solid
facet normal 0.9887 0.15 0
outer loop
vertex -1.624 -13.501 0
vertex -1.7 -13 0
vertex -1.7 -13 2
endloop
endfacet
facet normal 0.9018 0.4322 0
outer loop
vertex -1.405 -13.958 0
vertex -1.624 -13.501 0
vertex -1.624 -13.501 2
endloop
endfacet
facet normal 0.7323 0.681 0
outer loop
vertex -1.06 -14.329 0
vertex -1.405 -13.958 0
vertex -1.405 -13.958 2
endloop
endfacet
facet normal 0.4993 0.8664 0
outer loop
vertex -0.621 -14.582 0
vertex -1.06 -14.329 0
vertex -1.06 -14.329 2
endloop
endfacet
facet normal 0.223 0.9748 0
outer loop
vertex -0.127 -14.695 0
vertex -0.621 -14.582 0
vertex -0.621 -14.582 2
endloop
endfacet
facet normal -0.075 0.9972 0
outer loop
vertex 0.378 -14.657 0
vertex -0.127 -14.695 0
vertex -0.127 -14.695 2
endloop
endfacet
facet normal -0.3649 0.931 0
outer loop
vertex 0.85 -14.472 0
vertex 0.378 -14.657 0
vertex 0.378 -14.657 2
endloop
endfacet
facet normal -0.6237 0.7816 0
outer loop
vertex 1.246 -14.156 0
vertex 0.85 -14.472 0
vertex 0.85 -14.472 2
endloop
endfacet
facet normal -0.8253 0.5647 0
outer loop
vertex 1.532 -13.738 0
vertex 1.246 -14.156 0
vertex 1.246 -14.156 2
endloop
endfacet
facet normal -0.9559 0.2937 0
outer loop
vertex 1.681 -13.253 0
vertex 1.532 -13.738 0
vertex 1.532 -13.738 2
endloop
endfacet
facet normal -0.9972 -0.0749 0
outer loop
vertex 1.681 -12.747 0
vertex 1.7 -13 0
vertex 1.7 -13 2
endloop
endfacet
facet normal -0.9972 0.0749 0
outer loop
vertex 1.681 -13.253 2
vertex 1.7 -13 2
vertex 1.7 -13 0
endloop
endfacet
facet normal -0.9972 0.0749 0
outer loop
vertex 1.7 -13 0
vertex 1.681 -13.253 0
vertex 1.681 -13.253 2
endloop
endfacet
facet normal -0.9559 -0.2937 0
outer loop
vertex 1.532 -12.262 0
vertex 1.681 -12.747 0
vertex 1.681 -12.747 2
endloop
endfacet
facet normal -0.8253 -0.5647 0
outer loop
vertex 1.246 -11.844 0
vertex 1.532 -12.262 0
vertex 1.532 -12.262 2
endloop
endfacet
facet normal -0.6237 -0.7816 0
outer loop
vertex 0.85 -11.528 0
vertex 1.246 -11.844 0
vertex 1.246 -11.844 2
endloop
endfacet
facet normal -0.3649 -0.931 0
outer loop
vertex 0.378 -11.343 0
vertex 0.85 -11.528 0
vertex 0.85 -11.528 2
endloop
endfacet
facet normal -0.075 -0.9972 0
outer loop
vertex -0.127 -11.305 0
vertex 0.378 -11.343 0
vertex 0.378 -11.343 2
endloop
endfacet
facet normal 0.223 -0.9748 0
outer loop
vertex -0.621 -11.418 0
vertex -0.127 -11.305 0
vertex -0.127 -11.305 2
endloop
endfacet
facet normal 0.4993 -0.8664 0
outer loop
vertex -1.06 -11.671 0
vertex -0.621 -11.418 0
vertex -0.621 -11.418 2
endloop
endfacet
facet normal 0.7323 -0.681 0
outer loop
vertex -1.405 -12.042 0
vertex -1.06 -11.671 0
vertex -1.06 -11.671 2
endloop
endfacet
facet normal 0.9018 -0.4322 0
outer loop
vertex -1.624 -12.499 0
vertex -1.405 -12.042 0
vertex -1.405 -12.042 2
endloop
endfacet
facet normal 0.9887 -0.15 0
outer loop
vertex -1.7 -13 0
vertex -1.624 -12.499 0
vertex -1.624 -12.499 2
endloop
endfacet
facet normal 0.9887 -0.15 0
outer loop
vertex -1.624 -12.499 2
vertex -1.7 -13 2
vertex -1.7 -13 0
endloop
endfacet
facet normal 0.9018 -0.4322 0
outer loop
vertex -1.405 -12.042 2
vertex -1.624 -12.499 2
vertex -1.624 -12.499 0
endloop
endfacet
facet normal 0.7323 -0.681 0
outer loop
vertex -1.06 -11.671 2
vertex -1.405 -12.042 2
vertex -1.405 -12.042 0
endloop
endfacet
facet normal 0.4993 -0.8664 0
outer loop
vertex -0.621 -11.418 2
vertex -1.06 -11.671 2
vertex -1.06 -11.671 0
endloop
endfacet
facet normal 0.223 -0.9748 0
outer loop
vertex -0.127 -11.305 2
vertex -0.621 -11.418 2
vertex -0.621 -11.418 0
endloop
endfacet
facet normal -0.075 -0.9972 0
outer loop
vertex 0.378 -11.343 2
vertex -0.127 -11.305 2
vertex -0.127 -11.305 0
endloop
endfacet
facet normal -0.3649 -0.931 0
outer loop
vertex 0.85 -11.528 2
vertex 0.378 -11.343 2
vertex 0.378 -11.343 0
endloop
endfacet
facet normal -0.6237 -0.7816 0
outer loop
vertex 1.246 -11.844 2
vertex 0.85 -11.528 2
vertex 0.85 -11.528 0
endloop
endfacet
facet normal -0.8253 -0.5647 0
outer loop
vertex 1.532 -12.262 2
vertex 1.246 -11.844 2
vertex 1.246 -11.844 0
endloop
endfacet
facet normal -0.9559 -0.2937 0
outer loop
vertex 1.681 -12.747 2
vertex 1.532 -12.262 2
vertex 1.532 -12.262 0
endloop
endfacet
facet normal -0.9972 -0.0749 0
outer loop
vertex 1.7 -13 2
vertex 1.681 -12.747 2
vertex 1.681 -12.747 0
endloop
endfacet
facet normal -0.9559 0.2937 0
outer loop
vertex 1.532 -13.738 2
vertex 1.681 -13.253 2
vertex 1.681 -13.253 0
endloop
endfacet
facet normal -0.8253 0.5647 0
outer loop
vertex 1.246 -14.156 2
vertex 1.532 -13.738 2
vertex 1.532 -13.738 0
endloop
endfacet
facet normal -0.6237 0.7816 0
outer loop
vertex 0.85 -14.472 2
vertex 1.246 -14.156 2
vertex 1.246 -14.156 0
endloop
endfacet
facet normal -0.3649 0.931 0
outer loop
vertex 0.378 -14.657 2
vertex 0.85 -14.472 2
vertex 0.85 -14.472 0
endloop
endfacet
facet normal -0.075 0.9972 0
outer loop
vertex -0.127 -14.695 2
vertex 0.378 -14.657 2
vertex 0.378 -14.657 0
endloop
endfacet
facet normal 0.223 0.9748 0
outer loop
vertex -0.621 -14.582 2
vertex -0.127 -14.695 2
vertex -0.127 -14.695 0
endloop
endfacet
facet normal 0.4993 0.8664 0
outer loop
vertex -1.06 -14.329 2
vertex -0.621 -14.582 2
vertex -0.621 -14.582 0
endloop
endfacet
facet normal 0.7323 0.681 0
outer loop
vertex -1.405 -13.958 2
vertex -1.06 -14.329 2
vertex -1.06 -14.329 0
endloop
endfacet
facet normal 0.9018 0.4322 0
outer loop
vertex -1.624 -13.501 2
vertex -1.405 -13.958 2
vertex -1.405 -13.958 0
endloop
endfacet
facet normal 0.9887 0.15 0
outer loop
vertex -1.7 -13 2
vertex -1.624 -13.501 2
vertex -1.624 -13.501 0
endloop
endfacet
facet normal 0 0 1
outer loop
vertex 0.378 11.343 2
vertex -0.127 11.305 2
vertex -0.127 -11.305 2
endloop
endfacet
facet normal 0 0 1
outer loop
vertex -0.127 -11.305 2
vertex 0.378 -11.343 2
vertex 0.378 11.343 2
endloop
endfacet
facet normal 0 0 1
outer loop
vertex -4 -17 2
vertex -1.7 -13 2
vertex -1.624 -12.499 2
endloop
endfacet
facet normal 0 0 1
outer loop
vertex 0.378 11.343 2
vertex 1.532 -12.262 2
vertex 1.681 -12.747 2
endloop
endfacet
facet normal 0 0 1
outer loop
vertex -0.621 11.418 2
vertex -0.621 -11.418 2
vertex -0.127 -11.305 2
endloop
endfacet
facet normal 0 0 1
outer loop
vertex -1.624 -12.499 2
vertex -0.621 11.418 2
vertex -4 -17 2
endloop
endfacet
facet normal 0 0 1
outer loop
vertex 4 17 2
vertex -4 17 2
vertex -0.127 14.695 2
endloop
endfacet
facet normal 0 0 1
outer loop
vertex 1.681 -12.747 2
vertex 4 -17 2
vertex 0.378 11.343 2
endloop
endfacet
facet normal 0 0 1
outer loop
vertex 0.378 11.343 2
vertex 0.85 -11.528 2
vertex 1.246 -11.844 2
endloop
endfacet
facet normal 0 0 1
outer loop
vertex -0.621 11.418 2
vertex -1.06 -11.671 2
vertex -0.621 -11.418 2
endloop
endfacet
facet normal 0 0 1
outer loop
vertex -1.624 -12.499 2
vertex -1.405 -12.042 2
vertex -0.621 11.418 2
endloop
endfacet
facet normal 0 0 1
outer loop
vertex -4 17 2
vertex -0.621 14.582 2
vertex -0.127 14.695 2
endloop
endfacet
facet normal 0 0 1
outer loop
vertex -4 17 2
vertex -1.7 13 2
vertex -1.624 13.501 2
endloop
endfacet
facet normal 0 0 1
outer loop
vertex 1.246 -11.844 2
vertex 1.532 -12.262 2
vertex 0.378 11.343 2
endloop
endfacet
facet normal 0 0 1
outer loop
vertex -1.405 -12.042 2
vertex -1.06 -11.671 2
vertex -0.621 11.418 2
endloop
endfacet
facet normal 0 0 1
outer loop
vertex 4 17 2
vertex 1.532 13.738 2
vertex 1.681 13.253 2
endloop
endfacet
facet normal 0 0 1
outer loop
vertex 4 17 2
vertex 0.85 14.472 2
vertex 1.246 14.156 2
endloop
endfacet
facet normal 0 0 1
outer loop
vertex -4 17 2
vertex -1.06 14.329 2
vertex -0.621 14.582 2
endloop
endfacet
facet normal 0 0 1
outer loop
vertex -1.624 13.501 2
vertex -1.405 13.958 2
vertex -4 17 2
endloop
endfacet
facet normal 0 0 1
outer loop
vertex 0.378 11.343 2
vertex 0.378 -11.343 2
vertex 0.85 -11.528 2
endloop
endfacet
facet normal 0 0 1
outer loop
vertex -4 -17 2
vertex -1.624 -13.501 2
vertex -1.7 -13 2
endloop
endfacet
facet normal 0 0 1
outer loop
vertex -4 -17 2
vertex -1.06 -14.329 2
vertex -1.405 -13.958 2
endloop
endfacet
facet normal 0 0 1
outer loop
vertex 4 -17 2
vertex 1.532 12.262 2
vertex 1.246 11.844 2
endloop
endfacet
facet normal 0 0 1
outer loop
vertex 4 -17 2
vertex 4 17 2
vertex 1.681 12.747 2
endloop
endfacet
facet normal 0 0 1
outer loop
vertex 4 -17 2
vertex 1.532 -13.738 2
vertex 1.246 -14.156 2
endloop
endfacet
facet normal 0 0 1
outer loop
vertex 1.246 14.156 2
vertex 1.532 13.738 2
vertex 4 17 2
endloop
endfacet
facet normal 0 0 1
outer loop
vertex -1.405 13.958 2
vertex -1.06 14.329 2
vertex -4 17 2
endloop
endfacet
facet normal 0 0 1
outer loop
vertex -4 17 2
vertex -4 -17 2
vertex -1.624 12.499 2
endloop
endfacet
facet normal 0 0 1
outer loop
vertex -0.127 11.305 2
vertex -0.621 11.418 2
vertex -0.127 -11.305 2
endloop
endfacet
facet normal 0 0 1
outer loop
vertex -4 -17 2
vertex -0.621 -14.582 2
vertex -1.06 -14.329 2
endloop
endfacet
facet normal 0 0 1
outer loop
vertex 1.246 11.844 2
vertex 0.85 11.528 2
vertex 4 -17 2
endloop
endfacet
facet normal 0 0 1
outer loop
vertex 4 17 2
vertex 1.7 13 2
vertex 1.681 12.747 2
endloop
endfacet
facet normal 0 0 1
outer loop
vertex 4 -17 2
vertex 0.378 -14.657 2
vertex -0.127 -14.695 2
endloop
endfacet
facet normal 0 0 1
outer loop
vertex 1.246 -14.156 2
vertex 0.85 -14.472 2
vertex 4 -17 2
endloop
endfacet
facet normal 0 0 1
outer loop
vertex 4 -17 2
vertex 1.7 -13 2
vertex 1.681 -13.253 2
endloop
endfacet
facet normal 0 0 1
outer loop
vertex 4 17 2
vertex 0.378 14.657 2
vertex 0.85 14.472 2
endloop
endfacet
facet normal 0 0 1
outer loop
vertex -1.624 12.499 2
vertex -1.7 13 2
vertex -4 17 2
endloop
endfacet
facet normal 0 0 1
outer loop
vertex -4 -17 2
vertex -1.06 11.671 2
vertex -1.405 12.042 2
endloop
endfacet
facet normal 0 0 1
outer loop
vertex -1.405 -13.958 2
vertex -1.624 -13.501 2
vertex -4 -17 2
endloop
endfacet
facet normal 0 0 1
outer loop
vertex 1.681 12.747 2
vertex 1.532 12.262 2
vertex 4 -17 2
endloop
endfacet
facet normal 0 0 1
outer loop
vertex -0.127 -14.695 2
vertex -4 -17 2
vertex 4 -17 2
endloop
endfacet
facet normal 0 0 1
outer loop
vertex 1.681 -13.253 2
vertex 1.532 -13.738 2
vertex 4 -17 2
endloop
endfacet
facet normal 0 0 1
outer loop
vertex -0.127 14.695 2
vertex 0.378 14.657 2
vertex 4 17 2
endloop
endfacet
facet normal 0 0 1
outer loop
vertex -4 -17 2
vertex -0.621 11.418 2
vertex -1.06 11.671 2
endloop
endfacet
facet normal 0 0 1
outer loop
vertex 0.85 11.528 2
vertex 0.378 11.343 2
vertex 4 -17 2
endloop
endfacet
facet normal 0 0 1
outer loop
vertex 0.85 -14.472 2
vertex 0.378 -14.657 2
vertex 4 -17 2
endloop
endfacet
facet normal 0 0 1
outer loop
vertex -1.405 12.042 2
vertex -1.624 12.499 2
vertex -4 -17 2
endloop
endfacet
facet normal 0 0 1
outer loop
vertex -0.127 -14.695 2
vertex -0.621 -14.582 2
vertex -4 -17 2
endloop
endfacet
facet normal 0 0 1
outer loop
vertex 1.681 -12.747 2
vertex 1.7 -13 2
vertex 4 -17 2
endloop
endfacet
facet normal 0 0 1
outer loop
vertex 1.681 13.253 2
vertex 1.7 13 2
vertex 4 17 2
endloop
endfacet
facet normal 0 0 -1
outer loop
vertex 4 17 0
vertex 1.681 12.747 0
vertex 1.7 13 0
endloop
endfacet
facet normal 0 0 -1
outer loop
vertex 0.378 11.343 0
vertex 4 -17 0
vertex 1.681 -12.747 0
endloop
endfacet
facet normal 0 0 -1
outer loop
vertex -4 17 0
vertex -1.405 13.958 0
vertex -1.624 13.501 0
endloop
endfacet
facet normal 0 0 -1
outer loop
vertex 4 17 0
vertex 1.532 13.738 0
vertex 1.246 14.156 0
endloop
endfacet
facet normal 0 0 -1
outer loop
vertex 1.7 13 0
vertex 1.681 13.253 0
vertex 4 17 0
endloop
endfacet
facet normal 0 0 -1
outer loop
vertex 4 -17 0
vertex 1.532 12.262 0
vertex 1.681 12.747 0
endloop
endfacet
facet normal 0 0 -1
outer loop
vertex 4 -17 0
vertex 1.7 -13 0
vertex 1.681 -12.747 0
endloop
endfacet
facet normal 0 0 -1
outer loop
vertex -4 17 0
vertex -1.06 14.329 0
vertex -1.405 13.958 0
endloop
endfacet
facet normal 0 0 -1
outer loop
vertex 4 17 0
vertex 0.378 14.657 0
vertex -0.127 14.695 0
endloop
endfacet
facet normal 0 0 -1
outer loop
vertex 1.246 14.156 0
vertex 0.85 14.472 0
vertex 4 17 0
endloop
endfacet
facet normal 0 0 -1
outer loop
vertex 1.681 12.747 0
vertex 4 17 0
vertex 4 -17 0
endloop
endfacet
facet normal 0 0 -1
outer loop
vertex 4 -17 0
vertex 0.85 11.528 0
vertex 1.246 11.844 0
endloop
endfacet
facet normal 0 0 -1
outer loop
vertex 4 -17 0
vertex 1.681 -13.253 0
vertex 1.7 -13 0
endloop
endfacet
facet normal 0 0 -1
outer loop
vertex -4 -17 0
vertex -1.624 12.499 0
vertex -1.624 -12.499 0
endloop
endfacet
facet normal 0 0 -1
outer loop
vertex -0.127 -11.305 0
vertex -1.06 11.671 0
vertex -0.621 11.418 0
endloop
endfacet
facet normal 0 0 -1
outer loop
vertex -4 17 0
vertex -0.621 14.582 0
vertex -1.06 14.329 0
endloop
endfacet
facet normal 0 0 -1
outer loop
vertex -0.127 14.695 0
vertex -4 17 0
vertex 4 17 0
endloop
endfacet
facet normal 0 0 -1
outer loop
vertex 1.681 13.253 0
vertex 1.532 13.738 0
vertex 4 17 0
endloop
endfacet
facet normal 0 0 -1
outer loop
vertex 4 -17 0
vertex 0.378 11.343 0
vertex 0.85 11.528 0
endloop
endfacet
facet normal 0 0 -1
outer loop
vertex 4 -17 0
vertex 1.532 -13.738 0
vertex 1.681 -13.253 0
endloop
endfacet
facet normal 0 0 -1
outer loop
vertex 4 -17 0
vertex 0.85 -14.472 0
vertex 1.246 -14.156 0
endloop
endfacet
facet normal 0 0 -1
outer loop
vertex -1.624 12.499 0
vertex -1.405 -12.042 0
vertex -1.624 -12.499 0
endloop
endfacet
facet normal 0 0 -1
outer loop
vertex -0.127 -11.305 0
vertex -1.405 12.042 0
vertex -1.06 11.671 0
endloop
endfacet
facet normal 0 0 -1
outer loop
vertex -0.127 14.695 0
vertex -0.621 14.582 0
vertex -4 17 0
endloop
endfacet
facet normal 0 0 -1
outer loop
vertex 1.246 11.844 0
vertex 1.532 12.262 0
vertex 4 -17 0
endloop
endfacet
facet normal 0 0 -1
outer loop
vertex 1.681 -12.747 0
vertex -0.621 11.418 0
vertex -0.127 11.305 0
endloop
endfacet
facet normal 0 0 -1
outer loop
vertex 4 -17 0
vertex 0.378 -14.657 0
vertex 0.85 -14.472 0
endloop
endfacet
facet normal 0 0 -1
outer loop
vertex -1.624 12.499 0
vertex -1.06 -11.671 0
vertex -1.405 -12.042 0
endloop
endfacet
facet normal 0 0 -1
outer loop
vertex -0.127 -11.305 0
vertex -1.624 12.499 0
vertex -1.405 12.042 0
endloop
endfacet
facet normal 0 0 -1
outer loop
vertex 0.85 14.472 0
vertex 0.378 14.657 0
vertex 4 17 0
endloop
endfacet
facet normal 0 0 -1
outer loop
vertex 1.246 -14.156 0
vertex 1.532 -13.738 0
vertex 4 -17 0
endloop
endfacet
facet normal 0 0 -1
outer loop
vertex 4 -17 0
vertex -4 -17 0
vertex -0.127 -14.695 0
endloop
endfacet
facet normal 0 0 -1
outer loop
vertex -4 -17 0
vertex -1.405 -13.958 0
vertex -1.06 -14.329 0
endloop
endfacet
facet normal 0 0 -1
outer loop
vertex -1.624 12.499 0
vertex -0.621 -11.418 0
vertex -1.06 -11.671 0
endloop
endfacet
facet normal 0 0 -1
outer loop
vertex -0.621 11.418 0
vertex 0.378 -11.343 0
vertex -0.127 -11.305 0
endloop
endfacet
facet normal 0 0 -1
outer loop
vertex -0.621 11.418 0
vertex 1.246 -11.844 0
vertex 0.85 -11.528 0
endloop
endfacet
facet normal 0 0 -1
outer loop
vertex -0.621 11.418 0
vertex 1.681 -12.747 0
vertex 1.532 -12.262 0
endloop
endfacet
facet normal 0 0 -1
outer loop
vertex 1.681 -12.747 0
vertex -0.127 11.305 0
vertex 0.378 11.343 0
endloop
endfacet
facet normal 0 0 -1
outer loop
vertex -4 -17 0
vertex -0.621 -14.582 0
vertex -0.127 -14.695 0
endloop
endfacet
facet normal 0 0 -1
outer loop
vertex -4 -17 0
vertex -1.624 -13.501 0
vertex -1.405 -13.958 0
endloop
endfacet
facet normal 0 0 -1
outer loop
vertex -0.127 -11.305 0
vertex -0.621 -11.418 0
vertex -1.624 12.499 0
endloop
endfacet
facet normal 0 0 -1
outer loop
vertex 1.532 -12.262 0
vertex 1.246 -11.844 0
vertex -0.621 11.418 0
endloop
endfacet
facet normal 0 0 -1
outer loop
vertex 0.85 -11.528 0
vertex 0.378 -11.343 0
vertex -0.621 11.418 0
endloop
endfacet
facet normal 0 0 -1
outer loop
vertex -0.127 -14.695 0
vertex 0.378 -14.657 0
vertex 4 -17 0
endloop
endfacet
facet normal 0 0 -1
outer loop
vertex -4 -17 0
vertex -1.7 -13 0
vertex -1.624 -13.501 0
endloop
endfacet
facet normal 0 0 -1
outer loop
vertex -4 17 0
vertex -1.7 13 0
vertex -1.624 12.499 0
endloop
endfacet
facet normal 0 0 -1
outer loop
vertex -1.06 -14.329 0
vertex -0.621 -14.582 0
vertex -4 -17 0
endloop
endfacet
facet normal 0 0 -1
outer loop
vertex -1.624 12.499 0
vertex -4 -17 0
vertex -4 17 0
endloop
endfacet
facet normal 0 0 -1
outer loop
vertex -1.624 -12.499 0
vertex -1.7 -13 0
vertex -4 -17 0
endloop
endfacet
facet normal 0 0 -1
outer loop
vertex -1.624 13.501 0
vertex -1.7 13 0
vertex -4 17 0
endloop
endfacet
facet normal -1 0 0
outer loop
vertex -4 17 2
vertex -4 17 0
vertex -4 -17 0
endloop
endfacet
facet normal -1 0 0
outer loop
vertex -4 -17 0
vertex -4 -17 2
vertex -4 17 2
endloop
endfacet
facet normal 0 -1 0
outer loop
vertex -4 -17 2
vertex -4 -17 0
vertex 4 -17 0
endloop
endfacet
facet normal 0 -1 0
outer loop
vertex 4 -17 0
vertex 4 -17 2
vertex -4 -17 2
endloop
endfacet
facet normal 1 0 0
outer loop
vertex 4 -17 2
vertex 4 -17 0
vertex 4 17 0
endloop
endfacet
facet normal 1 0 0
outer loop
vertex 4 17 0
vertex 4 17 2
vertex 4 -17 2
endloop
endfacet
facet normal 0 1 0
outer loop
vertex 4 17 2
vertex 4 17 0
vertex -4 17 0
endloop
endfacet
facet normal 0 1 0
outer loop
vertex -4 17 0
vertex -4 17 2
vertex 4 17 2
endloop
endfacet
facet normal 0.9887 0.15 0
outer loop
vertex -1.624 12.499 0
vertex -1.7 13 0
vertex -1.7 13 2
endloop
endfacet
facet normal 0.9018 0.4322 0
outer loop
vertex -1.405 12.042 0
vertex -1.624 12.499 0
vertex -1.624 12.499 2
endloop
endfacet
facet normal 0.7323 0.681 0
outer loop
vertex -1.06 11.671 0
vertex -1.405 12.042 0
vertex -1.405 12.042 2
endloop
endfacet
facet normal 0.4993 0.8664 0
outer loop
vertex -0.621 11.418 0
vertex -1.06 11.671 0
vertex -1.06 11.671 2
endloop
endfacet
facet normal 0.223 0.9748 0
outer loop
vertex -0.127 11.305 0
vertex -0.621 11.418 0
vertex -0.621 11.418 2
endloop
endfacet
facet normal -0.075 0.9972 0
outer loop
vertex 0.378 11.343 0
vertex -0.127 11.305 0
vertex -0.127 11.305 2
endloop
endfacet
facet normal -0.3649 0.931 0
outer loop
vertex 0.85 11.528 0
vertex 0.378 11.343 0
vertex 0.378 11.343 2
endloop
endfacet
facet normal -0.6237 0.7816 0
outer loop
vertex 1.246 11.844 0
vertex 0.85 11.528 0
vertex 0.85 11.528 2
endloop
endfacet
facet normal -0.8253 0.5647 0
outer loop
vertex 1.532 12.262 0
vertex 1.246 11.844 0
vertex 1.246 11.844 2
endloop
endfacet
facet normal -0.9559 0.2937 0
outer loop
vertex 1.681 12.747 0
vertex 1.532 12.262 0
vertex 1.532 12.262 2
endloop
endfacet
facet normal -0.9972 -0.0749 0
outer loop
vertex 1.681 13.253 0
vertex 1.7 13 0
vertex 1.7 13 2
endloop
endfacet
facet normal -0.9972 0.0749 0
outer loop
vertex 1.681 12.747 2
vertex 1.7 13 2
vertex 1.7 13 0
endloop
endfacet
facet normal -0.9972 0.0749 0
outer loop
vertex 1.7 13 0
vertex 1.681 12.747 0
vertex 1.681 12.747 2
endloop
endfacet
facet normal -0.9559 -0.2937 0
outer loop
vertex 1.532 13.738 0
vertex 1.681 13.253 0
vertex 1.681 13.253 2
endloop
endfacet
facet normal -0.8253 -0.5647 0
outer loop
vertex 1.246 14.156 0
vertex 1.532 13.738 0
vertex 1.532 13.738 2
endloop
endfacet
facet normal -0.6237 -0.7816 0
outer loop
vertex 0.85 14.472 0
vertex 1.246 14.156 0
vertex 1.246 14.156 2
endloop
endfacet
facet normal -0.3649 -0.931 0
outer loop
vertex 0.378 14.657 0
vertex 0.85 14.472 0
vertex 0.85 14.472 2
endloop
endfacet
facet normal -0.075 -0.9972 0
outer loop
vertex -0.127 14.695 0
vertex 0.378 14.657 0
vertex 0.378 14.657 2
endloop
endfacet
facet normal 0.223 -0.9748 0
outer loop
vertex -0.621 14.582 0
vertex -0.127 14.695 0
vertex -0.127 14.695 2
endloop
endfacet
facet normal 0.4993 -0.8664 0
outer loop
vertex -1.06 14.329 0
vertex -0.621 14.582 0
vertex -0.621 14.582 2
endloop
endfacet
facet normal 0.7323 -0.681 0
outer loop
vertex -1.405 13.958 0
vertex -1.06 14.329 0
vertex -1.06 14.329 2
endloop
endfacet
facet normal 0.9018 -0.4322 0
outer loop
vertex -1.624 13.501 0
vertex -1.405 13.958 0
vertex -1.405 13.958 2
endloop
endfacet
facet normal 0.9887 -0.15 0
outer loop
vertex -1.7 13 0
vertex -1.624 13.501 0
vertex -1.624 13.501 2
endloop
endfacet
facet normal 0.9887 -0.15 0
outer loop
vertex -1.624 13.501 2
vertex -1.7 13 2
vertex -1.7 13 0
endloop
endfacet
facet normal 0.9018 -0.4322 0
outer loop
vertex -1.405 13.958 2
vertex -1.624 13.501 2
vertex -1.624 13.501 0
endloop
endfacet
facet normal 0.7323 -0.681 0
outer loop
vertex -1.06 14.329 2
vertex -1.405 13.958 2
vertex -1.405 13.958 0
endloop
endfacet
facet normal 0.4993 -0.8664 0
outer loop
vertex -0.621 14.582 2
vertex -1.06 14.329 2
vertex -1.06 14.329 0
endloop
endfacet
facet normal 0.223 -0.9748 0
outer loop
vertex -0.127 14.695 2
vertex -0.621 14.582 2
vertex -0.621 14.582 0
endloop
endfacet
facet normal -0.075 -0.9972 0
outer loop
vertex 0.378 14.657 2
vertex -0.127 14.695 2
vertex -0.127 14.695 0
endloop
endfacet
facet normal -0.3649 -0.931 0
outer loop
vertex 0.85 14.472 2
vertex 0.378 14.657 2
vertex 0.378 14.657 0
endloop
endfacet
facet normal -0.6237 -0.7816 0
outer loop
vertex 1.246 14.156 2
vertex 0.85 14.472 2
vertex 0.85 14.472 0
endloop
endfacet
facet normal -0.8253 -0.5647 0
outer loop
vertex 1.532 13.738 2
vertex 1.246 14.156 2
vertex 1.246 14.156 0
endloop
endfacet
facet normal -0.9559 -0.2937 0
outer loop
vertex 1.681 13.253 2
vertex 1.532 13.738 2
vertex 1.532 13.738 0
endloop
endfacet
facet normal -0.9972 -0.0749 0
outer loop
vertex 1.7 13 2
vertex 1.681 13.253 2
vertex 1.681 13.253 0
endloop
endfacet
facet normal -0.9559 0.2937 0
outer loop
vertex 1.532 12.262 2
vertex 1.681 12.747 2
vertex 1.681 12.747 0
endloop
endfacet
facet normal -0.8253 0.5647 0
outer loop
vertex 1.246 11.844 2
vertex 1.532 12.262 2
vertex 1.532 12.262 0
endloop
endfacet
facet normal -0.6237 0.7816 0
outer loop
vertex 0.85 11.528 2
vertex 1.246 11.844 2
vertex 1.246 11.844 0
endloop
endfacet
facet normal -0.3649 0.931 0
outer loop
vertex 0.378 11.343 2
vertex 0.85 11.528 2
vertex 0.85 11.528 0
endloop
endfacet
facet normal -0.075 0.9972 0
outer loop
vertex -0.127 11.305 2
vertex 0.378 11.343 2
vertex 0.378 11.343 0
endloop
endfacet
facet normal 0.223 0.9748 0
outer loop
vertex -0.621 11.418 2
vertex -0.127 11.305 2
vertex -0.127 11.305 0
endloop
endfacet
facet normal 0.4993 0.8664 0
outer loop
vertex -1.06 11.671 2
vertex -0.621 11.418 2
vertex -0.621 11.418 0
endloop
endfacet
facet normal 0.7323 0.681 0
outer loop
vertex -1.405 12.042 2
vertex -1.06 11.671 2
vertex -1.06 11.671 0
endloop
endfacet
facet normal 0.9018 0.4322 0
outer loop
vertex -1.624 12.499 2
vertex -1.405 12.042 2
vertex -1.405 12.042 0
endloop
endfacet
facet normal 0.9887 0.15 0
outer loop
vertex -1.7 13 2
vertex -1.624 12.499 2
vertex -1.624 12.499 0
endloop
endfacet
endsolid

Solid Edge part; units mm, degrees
sketch "Sketch1" plane through (0, 0, 0) normal (0, 0, 1) x (1, 0, 0)
  line L0 (-4, -17) -> (4, -17)
  line L1 (4, -17) -> (4, 17)
  line L2 (4, 17) -> (-4, 17)
  line L3 (-4, 17) -> (-4, -17)
  circle A0 centre (0, -13) radius 1.7
  circle A1 centre (0, 13) radius 1.7
extrude "Protrusion1" add sketch "Sketch1" along normal blind 2
